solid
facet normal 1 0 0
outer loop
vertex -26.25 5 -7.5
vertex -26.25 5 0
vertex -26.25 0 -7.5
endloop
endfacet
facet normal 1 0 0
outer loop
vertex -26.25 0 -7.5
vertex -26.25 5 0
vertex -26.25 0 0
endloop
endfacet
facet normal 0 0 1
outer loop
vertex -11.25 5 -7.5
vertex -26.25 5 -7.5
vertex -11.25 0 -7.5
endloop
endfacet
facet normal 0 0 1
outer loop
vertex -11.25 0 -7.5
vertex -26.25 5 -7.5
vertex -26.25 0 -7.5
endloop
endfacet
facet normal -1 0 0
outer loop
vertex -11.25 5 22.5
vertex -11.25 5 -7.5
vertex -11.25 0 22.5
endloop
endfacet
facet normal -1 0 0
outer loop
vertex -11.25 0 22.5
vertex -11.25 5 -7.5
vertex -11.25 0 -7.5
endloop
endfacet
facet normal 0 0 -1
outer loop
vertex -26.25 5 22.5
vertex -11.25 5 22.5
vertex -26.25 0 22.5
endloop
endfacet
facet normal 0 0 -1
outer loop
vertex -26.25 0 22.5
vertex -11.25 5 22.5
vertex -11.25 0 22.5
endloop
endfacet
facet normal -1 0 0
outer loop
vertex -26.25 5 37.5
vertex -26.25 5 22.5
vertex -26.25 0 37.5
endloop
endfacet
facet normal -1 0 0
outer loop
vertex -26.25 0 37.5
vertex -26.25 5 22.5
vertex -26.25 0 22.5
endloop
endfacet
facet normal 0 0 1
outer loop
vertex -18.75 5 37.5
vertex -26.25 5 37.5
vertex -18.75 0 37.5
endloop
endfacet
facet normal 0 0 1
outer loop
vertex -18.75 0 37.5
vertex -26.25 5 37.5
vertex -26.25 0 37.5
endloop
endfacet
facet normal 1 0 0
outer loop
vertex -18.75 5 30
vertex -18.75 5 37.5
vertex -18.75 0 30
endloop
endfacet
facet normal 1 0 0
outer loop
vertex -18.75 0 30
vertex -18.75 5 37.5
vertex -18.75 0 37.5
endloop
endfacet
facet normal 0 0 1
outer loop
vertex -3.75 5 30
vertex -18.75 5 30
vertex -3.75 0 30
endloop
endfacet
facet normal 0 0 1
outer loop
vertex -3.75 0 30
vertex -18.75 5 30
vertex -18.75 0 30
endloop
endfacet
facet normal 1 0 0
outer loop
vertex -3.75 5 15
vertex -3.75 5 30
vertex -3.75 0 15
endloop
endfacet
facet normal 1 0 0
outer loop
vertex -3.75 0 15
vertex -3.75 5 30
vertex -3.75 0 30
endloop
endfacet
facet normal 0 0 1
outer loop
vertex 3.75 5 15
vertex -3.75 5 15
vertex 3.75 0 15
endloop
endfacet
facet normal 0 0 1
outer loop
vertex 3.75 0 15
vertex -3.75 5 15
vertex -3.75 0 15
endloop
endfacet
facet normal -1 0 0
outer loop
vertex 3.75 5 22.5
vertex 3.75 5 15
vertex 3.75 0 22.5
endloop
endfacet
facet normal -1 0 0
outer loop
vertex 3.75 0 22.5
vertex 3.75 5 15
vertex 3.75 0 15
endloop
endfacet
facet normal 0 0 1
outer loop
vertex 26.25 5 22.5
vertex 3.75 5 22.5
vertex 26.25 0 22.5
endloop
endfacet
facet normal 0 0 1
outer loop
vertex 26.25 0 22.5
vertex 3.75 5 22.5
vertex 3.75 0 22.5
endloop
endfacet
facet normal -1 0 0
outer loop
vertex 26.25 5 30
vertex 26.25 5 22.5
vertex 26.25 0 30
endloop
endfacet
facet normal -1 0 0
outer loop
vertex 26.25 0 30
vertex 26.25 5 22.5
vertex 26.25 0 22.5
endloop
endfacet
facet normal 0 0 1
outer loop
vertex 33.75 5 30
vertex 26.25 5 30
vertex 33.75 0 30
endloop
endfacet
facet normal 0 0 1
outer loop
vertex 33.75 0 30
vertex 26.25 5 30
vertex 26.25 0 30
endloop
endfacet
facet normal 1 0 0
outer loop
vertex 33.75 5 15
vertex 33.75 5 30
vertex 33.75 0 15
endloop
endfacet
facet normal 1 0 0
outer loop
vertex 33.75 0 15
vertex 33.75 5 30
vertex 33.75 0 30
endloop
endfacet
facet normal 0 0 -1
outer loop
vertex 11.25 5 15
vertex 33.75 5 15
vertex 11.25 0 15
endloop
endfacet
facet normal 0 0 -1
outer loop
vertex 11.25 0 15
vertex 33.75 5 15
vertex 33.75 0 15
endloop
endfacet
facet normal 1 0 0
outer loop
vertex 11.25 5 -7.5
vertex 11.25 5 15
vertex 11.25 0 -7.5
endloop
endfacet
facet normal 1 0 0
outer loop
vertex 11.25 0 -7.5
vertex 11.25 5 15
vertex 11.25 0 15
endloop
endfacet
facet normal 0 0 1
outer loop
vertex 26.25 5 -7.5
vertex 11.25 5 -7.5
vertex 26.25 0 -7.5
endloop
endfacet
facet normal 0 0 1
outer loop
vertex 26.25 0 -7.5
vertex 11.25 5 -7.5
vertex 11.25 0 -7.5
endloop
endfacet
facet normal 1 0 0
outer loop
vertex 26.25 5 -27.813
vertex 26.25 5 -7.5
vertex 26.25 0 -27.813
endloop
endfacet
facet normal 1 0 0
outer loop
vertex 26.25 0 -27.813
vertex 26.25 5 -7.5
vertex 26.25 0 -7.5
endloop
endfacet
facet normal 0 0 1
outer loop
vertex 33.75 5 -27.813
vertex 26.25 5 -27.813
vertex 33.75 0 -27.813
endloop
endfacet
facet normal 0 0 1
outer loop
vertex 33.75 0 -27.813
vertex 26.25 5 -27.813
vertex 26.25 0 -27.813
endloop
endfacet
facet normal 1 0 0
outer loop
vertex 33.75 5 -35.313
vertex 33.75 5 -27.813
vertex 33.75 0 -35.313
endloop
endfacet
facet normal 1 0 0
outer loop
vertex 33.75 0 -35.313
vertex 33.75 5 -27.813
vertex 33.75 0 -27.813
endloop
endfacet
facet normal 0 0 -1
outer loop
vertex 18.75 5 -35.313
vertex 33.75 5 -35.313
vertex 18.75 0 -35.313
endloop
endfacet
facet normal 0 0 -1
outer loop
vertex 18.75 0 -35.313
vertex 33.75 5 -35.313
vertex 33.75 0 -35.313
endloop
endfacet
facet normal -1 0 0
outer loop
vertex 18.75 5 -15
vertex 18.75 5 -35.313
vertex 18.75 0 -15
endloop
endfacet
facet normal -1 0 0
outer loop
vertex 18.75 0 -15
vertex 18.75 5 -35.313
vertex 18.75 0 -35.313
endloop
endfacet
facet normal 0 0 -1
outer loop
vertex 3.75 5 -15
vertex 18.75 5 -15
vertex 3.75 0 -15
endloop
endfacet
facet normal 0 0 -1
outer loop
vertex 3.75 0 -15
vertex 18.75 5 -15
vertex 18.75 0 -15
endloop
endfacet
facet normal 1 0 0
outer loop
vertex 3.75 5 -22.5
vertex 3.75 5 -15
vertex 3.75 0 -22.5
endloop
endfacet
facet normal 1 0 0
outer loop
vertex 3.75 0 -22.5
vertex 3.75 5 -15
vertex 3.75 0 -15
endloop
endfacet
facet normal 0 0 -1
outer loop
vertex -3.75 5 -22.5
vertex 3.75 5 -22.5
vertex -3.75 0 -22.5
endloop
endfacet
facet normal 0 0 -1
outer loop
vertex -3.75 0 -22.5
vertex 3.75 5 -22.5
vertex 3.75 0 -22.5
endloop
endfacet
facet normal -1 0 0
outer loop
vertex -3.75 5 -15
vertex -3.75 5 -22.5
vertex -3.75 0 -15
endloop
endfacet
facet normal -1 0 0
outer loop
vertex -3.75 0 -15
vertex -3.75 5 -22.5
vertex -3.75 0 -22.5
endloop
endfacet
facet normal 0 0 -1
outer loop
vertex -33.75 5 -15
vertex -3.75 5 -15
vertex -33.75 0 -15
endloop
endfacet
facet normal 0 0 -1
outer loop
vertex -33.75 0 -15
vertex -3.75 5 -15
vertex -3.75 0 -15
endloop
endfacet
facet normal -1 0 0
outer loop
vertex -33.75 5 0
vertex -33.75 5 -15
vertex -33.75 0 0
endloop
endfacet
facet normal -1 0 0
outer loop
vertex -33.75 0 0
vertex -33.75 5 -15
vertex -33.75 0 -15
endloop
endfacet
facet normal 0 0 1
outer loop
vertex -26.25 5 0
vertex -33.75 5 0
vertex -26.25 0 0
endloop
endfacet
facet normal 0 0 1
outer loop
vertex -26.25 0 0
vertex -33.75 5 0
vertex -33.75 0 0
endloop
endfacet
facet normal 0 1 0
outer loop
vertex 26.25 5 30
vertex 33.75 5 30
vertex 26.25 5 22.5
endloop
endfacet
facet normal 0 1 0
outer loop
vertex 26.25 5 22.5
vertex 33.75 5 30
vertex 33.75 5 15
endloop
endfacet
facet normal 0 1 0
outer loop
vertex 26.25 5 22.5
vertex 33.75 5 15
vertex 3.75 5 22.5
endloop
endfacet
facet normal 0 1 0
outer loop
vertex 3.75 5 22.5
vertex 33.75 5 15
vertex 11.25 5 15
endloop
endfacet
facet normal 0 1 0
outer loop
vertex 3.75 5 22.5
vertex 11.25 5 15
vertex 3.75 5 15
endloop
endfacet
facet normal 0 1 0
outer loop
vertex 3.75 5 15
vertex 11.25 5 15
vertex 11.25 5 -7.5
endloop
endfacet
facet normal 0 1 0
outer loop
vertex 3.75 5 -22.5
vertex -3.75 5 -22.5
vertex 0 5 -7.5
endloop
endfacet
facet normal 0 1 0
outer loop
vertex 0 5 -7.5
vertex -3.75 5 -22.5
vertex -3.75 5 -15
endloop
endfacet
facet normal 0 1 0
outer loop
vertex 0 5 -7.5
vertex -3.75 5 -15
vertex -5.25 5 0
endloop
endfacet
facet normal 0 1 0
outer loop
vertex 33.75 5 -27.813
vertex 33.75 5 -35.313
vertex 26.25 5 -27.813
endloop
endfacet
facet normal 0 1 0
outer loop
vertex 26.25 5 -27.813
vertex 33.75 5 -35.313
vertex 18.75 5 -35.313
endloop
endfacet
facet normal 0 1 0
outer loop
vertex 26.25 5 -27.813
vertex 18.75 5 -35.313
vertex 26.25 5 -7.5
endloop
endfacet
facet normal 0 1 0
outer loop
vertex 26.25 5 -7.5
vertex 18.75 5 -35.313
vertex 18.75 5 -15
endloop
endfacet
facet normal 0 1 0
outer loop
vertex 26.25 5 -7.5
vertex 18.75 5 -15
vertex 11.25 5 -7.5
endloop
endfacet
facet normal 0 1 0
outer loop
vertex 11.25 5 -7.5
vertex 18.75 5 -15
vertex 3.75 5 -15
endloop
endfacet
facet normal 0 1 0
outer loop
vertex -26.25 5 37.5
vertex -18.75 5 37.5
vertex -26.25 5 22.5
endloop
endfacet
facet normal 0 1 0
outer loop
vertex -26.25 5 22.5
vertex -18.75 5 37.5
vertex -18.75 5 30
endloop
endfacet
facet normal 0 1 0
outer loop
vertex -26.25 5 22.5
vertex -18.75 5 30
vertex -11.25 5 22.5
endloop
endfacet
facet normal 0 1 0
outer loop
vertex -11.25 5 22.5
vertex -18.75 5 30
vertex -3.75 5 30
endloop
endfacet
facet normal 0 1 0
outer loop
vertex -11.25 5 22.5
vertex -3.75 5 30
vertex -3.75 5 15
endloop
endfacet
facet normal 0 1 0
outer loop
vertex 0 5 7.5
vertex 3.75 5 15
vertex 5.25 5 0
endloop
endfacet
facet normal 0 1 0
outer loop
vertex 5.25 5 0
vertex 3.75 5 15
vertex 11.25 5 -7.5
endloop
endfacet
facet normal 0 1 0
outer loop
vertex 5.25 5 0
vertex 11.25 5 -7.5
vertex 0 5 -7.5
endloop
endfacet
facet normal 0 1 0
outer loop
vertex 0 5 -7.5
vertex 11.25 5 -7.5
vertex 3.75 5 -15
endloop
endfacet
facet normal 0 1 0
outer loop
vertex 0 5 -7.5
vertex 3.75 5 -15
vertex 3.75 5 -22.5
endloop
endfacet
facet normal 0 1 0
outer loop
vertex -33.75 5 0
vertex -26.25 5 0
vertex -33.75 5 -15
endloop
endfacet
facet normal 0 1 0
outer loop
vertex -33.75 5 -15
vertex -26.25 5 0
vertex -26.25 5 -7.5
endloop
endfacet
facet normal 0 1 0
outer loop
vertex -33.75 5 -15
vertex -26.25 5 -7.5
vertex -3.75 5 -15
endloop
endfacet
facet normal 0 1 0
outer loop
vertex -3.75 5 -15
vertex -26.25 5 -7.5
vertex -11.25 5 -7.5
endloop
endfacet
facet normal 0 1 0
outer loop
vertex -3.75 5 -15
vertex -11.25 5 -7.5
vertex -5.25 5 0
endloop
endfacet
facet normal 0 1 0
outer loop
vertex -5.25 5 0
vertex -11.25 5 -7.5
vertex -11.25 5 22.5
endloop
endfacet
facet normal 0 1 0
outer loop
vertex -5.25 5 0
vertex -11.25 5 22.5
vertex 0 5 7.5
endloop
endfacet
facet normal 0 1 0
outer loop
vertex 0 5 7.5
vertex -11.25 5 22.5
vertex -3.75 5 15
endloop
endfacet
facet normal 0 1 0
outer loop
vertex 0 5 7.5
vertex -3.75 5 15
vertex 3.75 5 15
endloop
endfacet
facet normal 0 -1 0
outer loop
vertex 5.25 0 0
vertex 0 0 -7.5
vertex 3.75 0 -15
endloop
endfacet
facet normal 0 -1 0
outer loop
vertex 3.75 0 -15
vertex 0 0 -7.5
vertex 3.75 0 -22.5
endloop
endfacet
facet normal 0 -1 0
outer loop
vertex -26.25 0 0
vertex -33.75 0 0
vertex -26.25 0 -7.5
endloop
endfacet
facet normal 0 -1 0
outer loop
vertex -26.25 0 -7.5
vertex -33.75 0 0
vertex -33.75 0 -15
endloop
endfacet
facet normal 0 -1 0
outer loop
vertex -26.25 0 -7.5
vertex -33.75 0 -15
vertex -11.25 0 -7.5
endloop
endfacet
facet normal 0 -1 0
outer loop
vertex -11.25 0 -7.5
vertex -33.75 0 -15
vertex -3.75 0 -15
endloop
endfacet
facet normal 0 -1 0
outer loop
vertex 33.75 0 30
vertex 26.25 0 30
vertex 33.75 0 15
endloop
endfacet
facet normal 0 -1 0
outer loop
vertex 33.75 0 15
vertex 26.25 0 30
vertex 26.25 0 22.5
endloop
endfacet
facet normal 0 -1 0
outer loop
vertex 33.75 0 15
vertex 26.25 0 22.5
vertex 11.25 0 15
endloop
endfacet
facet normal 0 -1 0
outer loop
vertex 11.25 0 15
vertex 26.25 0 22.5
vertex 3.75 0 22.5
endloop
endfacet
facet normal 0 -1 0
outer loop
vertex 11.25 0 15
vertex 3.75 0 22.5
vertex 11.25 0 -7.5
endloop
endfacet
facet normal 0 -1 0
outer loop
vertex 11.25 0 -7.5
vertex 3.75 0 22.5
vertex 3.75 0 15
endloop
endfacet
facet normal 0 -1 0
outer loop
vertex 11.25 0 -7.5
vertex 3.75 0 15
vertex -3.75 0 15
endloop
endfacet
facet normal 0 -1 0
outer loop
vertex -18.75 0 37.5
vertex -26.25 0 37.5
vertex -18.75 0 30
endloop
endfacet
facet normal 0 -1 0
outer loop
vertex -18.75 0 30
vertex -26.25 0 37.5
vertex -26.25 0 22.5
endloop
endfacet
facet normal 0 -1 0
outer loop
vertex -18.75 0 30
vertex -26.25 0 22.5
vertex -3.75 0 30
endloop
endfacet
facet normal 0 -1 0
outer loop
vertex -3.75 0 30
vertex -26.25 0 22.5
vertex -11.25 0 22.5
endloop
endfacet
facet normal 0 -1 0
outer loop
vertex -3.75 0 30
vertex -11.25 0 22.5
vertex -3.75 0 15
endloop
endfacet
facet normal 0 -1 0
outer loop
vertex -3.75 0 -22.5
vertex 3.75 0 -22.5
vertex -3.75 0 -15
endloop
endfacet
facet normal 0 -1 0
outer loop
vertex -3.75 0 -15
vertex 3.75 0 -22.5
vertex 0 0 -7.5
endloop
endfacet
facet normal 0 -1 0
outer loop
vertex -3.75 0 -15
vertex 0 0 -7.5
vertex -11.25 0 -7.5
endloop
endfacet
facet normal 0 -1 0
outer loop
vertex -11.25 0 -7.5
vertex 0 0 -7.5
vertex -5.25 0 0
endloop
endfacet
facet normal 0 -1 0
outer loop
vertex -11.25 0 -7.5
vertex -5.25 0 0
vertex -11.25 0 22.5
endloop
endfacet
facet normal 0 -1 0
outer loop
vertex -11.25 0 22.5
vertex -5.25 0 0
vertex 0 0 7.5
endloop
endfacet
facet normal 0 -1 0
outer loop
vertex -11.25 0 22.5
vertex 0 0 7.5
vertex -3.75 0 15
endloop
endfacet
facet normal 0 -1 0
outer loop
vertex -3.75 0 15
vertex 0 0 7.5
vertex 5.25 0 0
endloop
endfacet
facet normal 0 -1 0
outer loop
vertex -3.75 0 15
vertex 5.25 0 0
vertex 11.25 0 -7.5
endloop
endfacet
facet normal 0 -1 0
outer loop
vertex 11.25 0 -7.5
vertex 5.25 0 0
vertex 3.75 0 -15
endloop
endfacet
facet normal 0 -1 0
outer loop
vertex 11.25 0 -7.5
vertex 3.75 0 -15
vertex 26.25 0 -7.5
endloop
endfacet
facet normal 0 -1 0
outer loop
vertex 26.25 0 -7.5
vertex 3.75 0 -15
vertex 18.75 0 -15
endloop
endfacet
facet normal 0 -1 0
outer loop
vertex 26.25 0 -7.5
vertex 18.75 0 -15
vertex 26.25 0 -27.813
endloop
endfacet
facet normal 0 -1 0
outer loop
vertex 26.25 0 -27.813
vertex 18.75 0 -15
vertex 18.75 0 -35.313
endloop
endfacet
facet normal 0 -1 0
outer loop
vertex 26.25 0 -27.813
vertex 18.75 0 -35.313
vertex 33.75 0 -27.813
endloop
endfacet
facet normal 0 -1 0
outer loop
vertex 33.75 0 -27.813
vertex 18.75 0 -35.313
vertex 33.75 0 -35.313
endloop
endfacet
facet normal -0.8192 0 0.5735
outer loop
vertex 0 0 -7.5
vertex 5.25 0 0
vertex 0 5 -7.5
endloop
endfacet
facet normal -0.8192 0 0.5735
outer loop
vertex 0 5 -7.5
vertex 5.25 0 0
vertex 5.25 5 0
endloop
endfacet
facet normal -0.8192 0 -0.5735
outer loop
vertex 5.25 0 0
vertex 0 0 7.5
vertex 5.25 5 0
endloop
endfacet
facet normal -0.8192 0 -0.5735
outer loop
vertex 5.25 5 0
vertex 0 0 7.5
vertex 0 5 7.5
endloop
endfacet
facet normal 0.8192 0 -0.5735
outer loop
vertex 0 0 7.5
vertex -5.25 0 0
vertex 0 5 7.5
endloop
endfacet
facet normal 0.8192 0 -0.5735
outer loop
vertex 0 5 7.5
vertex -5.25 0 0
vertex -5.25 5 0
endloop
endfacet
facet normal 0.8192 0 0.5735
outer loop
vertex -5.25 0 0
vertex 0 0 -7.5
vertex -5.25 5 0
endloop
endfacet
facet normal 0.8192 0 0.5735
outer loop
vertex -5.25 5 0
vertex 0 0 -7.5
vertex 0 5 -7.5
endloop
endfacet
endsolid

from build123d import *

# Parameters (mm, degrees)
SKETCH1_W           = 22.5
SKETCH1_H           = 30
SKETCH1_W_2         = 7.5
SKETCH1_H_2         = 7.5
BOSS_EXTRUDE1_DEPTH = 5
CUT_EXTRUDE1_DEPTH  = 51.698249477


with BuildPart() as part:
    # Sketch1 → Boss-Extrude1 (new body)
    with BuildSketch(Plane(origin=(0, 0, 0), x_dir=(1, 0, 0), z_dir=(0, 1, 0))):
        Polygon((-11.25, 7.5), (-11.25, 15), (-33.75, 15), (-33.75, 0), (-26.25, 0), (-26.25, 7.5), align=None)
        Rectangle(SKETCH1_W, SKETCH1_H)
        with Locations((0, 18.75)):
            Rectangle(SKETCH1_W_2, SKETCH1_H_2)
        Polygon((18.75, 15), (11.25, 15), (11.25, 7.5), (26.25, 7.5), (26.25, 27.813163598), (33.75, 27.813163598), (33.75, 35.313163598), (18.75, 35.313163598), align=None)
        Polygon((11.25, -15), (3.75, -15), (3.75, -22.5), (26.25, -22.5), (26.25, -30), (33.75, -30), (33.75, -15), align=None)
        Polygon((-3.75, -15), (-11.25, -15), (-11.25, -22.5), (-26.25, -22.5), (-26.25, -37.5), (-18.75, -37.5), (-18.75, -30), (-3.75, -30), align=None)
    extrude(amount=BOSS_EXTRUDE1_DEPTH)

    # Sketch2 → Cut-Extrude1 (cut, through all)
    with BuildSketch(Plane(origin=(0, 5, 0), x_dir=(1, 0, 0), z_dir=(0, 1, 0))):
        Polygon((0, 7.5), (-5.25, 0), (0, -7.5), (5.25, 0), align=None)
    extrude(amount=-CUT_EXTRUDE1_DEPTH, mode=Mode.SUBTRACT)


solid = part.part
